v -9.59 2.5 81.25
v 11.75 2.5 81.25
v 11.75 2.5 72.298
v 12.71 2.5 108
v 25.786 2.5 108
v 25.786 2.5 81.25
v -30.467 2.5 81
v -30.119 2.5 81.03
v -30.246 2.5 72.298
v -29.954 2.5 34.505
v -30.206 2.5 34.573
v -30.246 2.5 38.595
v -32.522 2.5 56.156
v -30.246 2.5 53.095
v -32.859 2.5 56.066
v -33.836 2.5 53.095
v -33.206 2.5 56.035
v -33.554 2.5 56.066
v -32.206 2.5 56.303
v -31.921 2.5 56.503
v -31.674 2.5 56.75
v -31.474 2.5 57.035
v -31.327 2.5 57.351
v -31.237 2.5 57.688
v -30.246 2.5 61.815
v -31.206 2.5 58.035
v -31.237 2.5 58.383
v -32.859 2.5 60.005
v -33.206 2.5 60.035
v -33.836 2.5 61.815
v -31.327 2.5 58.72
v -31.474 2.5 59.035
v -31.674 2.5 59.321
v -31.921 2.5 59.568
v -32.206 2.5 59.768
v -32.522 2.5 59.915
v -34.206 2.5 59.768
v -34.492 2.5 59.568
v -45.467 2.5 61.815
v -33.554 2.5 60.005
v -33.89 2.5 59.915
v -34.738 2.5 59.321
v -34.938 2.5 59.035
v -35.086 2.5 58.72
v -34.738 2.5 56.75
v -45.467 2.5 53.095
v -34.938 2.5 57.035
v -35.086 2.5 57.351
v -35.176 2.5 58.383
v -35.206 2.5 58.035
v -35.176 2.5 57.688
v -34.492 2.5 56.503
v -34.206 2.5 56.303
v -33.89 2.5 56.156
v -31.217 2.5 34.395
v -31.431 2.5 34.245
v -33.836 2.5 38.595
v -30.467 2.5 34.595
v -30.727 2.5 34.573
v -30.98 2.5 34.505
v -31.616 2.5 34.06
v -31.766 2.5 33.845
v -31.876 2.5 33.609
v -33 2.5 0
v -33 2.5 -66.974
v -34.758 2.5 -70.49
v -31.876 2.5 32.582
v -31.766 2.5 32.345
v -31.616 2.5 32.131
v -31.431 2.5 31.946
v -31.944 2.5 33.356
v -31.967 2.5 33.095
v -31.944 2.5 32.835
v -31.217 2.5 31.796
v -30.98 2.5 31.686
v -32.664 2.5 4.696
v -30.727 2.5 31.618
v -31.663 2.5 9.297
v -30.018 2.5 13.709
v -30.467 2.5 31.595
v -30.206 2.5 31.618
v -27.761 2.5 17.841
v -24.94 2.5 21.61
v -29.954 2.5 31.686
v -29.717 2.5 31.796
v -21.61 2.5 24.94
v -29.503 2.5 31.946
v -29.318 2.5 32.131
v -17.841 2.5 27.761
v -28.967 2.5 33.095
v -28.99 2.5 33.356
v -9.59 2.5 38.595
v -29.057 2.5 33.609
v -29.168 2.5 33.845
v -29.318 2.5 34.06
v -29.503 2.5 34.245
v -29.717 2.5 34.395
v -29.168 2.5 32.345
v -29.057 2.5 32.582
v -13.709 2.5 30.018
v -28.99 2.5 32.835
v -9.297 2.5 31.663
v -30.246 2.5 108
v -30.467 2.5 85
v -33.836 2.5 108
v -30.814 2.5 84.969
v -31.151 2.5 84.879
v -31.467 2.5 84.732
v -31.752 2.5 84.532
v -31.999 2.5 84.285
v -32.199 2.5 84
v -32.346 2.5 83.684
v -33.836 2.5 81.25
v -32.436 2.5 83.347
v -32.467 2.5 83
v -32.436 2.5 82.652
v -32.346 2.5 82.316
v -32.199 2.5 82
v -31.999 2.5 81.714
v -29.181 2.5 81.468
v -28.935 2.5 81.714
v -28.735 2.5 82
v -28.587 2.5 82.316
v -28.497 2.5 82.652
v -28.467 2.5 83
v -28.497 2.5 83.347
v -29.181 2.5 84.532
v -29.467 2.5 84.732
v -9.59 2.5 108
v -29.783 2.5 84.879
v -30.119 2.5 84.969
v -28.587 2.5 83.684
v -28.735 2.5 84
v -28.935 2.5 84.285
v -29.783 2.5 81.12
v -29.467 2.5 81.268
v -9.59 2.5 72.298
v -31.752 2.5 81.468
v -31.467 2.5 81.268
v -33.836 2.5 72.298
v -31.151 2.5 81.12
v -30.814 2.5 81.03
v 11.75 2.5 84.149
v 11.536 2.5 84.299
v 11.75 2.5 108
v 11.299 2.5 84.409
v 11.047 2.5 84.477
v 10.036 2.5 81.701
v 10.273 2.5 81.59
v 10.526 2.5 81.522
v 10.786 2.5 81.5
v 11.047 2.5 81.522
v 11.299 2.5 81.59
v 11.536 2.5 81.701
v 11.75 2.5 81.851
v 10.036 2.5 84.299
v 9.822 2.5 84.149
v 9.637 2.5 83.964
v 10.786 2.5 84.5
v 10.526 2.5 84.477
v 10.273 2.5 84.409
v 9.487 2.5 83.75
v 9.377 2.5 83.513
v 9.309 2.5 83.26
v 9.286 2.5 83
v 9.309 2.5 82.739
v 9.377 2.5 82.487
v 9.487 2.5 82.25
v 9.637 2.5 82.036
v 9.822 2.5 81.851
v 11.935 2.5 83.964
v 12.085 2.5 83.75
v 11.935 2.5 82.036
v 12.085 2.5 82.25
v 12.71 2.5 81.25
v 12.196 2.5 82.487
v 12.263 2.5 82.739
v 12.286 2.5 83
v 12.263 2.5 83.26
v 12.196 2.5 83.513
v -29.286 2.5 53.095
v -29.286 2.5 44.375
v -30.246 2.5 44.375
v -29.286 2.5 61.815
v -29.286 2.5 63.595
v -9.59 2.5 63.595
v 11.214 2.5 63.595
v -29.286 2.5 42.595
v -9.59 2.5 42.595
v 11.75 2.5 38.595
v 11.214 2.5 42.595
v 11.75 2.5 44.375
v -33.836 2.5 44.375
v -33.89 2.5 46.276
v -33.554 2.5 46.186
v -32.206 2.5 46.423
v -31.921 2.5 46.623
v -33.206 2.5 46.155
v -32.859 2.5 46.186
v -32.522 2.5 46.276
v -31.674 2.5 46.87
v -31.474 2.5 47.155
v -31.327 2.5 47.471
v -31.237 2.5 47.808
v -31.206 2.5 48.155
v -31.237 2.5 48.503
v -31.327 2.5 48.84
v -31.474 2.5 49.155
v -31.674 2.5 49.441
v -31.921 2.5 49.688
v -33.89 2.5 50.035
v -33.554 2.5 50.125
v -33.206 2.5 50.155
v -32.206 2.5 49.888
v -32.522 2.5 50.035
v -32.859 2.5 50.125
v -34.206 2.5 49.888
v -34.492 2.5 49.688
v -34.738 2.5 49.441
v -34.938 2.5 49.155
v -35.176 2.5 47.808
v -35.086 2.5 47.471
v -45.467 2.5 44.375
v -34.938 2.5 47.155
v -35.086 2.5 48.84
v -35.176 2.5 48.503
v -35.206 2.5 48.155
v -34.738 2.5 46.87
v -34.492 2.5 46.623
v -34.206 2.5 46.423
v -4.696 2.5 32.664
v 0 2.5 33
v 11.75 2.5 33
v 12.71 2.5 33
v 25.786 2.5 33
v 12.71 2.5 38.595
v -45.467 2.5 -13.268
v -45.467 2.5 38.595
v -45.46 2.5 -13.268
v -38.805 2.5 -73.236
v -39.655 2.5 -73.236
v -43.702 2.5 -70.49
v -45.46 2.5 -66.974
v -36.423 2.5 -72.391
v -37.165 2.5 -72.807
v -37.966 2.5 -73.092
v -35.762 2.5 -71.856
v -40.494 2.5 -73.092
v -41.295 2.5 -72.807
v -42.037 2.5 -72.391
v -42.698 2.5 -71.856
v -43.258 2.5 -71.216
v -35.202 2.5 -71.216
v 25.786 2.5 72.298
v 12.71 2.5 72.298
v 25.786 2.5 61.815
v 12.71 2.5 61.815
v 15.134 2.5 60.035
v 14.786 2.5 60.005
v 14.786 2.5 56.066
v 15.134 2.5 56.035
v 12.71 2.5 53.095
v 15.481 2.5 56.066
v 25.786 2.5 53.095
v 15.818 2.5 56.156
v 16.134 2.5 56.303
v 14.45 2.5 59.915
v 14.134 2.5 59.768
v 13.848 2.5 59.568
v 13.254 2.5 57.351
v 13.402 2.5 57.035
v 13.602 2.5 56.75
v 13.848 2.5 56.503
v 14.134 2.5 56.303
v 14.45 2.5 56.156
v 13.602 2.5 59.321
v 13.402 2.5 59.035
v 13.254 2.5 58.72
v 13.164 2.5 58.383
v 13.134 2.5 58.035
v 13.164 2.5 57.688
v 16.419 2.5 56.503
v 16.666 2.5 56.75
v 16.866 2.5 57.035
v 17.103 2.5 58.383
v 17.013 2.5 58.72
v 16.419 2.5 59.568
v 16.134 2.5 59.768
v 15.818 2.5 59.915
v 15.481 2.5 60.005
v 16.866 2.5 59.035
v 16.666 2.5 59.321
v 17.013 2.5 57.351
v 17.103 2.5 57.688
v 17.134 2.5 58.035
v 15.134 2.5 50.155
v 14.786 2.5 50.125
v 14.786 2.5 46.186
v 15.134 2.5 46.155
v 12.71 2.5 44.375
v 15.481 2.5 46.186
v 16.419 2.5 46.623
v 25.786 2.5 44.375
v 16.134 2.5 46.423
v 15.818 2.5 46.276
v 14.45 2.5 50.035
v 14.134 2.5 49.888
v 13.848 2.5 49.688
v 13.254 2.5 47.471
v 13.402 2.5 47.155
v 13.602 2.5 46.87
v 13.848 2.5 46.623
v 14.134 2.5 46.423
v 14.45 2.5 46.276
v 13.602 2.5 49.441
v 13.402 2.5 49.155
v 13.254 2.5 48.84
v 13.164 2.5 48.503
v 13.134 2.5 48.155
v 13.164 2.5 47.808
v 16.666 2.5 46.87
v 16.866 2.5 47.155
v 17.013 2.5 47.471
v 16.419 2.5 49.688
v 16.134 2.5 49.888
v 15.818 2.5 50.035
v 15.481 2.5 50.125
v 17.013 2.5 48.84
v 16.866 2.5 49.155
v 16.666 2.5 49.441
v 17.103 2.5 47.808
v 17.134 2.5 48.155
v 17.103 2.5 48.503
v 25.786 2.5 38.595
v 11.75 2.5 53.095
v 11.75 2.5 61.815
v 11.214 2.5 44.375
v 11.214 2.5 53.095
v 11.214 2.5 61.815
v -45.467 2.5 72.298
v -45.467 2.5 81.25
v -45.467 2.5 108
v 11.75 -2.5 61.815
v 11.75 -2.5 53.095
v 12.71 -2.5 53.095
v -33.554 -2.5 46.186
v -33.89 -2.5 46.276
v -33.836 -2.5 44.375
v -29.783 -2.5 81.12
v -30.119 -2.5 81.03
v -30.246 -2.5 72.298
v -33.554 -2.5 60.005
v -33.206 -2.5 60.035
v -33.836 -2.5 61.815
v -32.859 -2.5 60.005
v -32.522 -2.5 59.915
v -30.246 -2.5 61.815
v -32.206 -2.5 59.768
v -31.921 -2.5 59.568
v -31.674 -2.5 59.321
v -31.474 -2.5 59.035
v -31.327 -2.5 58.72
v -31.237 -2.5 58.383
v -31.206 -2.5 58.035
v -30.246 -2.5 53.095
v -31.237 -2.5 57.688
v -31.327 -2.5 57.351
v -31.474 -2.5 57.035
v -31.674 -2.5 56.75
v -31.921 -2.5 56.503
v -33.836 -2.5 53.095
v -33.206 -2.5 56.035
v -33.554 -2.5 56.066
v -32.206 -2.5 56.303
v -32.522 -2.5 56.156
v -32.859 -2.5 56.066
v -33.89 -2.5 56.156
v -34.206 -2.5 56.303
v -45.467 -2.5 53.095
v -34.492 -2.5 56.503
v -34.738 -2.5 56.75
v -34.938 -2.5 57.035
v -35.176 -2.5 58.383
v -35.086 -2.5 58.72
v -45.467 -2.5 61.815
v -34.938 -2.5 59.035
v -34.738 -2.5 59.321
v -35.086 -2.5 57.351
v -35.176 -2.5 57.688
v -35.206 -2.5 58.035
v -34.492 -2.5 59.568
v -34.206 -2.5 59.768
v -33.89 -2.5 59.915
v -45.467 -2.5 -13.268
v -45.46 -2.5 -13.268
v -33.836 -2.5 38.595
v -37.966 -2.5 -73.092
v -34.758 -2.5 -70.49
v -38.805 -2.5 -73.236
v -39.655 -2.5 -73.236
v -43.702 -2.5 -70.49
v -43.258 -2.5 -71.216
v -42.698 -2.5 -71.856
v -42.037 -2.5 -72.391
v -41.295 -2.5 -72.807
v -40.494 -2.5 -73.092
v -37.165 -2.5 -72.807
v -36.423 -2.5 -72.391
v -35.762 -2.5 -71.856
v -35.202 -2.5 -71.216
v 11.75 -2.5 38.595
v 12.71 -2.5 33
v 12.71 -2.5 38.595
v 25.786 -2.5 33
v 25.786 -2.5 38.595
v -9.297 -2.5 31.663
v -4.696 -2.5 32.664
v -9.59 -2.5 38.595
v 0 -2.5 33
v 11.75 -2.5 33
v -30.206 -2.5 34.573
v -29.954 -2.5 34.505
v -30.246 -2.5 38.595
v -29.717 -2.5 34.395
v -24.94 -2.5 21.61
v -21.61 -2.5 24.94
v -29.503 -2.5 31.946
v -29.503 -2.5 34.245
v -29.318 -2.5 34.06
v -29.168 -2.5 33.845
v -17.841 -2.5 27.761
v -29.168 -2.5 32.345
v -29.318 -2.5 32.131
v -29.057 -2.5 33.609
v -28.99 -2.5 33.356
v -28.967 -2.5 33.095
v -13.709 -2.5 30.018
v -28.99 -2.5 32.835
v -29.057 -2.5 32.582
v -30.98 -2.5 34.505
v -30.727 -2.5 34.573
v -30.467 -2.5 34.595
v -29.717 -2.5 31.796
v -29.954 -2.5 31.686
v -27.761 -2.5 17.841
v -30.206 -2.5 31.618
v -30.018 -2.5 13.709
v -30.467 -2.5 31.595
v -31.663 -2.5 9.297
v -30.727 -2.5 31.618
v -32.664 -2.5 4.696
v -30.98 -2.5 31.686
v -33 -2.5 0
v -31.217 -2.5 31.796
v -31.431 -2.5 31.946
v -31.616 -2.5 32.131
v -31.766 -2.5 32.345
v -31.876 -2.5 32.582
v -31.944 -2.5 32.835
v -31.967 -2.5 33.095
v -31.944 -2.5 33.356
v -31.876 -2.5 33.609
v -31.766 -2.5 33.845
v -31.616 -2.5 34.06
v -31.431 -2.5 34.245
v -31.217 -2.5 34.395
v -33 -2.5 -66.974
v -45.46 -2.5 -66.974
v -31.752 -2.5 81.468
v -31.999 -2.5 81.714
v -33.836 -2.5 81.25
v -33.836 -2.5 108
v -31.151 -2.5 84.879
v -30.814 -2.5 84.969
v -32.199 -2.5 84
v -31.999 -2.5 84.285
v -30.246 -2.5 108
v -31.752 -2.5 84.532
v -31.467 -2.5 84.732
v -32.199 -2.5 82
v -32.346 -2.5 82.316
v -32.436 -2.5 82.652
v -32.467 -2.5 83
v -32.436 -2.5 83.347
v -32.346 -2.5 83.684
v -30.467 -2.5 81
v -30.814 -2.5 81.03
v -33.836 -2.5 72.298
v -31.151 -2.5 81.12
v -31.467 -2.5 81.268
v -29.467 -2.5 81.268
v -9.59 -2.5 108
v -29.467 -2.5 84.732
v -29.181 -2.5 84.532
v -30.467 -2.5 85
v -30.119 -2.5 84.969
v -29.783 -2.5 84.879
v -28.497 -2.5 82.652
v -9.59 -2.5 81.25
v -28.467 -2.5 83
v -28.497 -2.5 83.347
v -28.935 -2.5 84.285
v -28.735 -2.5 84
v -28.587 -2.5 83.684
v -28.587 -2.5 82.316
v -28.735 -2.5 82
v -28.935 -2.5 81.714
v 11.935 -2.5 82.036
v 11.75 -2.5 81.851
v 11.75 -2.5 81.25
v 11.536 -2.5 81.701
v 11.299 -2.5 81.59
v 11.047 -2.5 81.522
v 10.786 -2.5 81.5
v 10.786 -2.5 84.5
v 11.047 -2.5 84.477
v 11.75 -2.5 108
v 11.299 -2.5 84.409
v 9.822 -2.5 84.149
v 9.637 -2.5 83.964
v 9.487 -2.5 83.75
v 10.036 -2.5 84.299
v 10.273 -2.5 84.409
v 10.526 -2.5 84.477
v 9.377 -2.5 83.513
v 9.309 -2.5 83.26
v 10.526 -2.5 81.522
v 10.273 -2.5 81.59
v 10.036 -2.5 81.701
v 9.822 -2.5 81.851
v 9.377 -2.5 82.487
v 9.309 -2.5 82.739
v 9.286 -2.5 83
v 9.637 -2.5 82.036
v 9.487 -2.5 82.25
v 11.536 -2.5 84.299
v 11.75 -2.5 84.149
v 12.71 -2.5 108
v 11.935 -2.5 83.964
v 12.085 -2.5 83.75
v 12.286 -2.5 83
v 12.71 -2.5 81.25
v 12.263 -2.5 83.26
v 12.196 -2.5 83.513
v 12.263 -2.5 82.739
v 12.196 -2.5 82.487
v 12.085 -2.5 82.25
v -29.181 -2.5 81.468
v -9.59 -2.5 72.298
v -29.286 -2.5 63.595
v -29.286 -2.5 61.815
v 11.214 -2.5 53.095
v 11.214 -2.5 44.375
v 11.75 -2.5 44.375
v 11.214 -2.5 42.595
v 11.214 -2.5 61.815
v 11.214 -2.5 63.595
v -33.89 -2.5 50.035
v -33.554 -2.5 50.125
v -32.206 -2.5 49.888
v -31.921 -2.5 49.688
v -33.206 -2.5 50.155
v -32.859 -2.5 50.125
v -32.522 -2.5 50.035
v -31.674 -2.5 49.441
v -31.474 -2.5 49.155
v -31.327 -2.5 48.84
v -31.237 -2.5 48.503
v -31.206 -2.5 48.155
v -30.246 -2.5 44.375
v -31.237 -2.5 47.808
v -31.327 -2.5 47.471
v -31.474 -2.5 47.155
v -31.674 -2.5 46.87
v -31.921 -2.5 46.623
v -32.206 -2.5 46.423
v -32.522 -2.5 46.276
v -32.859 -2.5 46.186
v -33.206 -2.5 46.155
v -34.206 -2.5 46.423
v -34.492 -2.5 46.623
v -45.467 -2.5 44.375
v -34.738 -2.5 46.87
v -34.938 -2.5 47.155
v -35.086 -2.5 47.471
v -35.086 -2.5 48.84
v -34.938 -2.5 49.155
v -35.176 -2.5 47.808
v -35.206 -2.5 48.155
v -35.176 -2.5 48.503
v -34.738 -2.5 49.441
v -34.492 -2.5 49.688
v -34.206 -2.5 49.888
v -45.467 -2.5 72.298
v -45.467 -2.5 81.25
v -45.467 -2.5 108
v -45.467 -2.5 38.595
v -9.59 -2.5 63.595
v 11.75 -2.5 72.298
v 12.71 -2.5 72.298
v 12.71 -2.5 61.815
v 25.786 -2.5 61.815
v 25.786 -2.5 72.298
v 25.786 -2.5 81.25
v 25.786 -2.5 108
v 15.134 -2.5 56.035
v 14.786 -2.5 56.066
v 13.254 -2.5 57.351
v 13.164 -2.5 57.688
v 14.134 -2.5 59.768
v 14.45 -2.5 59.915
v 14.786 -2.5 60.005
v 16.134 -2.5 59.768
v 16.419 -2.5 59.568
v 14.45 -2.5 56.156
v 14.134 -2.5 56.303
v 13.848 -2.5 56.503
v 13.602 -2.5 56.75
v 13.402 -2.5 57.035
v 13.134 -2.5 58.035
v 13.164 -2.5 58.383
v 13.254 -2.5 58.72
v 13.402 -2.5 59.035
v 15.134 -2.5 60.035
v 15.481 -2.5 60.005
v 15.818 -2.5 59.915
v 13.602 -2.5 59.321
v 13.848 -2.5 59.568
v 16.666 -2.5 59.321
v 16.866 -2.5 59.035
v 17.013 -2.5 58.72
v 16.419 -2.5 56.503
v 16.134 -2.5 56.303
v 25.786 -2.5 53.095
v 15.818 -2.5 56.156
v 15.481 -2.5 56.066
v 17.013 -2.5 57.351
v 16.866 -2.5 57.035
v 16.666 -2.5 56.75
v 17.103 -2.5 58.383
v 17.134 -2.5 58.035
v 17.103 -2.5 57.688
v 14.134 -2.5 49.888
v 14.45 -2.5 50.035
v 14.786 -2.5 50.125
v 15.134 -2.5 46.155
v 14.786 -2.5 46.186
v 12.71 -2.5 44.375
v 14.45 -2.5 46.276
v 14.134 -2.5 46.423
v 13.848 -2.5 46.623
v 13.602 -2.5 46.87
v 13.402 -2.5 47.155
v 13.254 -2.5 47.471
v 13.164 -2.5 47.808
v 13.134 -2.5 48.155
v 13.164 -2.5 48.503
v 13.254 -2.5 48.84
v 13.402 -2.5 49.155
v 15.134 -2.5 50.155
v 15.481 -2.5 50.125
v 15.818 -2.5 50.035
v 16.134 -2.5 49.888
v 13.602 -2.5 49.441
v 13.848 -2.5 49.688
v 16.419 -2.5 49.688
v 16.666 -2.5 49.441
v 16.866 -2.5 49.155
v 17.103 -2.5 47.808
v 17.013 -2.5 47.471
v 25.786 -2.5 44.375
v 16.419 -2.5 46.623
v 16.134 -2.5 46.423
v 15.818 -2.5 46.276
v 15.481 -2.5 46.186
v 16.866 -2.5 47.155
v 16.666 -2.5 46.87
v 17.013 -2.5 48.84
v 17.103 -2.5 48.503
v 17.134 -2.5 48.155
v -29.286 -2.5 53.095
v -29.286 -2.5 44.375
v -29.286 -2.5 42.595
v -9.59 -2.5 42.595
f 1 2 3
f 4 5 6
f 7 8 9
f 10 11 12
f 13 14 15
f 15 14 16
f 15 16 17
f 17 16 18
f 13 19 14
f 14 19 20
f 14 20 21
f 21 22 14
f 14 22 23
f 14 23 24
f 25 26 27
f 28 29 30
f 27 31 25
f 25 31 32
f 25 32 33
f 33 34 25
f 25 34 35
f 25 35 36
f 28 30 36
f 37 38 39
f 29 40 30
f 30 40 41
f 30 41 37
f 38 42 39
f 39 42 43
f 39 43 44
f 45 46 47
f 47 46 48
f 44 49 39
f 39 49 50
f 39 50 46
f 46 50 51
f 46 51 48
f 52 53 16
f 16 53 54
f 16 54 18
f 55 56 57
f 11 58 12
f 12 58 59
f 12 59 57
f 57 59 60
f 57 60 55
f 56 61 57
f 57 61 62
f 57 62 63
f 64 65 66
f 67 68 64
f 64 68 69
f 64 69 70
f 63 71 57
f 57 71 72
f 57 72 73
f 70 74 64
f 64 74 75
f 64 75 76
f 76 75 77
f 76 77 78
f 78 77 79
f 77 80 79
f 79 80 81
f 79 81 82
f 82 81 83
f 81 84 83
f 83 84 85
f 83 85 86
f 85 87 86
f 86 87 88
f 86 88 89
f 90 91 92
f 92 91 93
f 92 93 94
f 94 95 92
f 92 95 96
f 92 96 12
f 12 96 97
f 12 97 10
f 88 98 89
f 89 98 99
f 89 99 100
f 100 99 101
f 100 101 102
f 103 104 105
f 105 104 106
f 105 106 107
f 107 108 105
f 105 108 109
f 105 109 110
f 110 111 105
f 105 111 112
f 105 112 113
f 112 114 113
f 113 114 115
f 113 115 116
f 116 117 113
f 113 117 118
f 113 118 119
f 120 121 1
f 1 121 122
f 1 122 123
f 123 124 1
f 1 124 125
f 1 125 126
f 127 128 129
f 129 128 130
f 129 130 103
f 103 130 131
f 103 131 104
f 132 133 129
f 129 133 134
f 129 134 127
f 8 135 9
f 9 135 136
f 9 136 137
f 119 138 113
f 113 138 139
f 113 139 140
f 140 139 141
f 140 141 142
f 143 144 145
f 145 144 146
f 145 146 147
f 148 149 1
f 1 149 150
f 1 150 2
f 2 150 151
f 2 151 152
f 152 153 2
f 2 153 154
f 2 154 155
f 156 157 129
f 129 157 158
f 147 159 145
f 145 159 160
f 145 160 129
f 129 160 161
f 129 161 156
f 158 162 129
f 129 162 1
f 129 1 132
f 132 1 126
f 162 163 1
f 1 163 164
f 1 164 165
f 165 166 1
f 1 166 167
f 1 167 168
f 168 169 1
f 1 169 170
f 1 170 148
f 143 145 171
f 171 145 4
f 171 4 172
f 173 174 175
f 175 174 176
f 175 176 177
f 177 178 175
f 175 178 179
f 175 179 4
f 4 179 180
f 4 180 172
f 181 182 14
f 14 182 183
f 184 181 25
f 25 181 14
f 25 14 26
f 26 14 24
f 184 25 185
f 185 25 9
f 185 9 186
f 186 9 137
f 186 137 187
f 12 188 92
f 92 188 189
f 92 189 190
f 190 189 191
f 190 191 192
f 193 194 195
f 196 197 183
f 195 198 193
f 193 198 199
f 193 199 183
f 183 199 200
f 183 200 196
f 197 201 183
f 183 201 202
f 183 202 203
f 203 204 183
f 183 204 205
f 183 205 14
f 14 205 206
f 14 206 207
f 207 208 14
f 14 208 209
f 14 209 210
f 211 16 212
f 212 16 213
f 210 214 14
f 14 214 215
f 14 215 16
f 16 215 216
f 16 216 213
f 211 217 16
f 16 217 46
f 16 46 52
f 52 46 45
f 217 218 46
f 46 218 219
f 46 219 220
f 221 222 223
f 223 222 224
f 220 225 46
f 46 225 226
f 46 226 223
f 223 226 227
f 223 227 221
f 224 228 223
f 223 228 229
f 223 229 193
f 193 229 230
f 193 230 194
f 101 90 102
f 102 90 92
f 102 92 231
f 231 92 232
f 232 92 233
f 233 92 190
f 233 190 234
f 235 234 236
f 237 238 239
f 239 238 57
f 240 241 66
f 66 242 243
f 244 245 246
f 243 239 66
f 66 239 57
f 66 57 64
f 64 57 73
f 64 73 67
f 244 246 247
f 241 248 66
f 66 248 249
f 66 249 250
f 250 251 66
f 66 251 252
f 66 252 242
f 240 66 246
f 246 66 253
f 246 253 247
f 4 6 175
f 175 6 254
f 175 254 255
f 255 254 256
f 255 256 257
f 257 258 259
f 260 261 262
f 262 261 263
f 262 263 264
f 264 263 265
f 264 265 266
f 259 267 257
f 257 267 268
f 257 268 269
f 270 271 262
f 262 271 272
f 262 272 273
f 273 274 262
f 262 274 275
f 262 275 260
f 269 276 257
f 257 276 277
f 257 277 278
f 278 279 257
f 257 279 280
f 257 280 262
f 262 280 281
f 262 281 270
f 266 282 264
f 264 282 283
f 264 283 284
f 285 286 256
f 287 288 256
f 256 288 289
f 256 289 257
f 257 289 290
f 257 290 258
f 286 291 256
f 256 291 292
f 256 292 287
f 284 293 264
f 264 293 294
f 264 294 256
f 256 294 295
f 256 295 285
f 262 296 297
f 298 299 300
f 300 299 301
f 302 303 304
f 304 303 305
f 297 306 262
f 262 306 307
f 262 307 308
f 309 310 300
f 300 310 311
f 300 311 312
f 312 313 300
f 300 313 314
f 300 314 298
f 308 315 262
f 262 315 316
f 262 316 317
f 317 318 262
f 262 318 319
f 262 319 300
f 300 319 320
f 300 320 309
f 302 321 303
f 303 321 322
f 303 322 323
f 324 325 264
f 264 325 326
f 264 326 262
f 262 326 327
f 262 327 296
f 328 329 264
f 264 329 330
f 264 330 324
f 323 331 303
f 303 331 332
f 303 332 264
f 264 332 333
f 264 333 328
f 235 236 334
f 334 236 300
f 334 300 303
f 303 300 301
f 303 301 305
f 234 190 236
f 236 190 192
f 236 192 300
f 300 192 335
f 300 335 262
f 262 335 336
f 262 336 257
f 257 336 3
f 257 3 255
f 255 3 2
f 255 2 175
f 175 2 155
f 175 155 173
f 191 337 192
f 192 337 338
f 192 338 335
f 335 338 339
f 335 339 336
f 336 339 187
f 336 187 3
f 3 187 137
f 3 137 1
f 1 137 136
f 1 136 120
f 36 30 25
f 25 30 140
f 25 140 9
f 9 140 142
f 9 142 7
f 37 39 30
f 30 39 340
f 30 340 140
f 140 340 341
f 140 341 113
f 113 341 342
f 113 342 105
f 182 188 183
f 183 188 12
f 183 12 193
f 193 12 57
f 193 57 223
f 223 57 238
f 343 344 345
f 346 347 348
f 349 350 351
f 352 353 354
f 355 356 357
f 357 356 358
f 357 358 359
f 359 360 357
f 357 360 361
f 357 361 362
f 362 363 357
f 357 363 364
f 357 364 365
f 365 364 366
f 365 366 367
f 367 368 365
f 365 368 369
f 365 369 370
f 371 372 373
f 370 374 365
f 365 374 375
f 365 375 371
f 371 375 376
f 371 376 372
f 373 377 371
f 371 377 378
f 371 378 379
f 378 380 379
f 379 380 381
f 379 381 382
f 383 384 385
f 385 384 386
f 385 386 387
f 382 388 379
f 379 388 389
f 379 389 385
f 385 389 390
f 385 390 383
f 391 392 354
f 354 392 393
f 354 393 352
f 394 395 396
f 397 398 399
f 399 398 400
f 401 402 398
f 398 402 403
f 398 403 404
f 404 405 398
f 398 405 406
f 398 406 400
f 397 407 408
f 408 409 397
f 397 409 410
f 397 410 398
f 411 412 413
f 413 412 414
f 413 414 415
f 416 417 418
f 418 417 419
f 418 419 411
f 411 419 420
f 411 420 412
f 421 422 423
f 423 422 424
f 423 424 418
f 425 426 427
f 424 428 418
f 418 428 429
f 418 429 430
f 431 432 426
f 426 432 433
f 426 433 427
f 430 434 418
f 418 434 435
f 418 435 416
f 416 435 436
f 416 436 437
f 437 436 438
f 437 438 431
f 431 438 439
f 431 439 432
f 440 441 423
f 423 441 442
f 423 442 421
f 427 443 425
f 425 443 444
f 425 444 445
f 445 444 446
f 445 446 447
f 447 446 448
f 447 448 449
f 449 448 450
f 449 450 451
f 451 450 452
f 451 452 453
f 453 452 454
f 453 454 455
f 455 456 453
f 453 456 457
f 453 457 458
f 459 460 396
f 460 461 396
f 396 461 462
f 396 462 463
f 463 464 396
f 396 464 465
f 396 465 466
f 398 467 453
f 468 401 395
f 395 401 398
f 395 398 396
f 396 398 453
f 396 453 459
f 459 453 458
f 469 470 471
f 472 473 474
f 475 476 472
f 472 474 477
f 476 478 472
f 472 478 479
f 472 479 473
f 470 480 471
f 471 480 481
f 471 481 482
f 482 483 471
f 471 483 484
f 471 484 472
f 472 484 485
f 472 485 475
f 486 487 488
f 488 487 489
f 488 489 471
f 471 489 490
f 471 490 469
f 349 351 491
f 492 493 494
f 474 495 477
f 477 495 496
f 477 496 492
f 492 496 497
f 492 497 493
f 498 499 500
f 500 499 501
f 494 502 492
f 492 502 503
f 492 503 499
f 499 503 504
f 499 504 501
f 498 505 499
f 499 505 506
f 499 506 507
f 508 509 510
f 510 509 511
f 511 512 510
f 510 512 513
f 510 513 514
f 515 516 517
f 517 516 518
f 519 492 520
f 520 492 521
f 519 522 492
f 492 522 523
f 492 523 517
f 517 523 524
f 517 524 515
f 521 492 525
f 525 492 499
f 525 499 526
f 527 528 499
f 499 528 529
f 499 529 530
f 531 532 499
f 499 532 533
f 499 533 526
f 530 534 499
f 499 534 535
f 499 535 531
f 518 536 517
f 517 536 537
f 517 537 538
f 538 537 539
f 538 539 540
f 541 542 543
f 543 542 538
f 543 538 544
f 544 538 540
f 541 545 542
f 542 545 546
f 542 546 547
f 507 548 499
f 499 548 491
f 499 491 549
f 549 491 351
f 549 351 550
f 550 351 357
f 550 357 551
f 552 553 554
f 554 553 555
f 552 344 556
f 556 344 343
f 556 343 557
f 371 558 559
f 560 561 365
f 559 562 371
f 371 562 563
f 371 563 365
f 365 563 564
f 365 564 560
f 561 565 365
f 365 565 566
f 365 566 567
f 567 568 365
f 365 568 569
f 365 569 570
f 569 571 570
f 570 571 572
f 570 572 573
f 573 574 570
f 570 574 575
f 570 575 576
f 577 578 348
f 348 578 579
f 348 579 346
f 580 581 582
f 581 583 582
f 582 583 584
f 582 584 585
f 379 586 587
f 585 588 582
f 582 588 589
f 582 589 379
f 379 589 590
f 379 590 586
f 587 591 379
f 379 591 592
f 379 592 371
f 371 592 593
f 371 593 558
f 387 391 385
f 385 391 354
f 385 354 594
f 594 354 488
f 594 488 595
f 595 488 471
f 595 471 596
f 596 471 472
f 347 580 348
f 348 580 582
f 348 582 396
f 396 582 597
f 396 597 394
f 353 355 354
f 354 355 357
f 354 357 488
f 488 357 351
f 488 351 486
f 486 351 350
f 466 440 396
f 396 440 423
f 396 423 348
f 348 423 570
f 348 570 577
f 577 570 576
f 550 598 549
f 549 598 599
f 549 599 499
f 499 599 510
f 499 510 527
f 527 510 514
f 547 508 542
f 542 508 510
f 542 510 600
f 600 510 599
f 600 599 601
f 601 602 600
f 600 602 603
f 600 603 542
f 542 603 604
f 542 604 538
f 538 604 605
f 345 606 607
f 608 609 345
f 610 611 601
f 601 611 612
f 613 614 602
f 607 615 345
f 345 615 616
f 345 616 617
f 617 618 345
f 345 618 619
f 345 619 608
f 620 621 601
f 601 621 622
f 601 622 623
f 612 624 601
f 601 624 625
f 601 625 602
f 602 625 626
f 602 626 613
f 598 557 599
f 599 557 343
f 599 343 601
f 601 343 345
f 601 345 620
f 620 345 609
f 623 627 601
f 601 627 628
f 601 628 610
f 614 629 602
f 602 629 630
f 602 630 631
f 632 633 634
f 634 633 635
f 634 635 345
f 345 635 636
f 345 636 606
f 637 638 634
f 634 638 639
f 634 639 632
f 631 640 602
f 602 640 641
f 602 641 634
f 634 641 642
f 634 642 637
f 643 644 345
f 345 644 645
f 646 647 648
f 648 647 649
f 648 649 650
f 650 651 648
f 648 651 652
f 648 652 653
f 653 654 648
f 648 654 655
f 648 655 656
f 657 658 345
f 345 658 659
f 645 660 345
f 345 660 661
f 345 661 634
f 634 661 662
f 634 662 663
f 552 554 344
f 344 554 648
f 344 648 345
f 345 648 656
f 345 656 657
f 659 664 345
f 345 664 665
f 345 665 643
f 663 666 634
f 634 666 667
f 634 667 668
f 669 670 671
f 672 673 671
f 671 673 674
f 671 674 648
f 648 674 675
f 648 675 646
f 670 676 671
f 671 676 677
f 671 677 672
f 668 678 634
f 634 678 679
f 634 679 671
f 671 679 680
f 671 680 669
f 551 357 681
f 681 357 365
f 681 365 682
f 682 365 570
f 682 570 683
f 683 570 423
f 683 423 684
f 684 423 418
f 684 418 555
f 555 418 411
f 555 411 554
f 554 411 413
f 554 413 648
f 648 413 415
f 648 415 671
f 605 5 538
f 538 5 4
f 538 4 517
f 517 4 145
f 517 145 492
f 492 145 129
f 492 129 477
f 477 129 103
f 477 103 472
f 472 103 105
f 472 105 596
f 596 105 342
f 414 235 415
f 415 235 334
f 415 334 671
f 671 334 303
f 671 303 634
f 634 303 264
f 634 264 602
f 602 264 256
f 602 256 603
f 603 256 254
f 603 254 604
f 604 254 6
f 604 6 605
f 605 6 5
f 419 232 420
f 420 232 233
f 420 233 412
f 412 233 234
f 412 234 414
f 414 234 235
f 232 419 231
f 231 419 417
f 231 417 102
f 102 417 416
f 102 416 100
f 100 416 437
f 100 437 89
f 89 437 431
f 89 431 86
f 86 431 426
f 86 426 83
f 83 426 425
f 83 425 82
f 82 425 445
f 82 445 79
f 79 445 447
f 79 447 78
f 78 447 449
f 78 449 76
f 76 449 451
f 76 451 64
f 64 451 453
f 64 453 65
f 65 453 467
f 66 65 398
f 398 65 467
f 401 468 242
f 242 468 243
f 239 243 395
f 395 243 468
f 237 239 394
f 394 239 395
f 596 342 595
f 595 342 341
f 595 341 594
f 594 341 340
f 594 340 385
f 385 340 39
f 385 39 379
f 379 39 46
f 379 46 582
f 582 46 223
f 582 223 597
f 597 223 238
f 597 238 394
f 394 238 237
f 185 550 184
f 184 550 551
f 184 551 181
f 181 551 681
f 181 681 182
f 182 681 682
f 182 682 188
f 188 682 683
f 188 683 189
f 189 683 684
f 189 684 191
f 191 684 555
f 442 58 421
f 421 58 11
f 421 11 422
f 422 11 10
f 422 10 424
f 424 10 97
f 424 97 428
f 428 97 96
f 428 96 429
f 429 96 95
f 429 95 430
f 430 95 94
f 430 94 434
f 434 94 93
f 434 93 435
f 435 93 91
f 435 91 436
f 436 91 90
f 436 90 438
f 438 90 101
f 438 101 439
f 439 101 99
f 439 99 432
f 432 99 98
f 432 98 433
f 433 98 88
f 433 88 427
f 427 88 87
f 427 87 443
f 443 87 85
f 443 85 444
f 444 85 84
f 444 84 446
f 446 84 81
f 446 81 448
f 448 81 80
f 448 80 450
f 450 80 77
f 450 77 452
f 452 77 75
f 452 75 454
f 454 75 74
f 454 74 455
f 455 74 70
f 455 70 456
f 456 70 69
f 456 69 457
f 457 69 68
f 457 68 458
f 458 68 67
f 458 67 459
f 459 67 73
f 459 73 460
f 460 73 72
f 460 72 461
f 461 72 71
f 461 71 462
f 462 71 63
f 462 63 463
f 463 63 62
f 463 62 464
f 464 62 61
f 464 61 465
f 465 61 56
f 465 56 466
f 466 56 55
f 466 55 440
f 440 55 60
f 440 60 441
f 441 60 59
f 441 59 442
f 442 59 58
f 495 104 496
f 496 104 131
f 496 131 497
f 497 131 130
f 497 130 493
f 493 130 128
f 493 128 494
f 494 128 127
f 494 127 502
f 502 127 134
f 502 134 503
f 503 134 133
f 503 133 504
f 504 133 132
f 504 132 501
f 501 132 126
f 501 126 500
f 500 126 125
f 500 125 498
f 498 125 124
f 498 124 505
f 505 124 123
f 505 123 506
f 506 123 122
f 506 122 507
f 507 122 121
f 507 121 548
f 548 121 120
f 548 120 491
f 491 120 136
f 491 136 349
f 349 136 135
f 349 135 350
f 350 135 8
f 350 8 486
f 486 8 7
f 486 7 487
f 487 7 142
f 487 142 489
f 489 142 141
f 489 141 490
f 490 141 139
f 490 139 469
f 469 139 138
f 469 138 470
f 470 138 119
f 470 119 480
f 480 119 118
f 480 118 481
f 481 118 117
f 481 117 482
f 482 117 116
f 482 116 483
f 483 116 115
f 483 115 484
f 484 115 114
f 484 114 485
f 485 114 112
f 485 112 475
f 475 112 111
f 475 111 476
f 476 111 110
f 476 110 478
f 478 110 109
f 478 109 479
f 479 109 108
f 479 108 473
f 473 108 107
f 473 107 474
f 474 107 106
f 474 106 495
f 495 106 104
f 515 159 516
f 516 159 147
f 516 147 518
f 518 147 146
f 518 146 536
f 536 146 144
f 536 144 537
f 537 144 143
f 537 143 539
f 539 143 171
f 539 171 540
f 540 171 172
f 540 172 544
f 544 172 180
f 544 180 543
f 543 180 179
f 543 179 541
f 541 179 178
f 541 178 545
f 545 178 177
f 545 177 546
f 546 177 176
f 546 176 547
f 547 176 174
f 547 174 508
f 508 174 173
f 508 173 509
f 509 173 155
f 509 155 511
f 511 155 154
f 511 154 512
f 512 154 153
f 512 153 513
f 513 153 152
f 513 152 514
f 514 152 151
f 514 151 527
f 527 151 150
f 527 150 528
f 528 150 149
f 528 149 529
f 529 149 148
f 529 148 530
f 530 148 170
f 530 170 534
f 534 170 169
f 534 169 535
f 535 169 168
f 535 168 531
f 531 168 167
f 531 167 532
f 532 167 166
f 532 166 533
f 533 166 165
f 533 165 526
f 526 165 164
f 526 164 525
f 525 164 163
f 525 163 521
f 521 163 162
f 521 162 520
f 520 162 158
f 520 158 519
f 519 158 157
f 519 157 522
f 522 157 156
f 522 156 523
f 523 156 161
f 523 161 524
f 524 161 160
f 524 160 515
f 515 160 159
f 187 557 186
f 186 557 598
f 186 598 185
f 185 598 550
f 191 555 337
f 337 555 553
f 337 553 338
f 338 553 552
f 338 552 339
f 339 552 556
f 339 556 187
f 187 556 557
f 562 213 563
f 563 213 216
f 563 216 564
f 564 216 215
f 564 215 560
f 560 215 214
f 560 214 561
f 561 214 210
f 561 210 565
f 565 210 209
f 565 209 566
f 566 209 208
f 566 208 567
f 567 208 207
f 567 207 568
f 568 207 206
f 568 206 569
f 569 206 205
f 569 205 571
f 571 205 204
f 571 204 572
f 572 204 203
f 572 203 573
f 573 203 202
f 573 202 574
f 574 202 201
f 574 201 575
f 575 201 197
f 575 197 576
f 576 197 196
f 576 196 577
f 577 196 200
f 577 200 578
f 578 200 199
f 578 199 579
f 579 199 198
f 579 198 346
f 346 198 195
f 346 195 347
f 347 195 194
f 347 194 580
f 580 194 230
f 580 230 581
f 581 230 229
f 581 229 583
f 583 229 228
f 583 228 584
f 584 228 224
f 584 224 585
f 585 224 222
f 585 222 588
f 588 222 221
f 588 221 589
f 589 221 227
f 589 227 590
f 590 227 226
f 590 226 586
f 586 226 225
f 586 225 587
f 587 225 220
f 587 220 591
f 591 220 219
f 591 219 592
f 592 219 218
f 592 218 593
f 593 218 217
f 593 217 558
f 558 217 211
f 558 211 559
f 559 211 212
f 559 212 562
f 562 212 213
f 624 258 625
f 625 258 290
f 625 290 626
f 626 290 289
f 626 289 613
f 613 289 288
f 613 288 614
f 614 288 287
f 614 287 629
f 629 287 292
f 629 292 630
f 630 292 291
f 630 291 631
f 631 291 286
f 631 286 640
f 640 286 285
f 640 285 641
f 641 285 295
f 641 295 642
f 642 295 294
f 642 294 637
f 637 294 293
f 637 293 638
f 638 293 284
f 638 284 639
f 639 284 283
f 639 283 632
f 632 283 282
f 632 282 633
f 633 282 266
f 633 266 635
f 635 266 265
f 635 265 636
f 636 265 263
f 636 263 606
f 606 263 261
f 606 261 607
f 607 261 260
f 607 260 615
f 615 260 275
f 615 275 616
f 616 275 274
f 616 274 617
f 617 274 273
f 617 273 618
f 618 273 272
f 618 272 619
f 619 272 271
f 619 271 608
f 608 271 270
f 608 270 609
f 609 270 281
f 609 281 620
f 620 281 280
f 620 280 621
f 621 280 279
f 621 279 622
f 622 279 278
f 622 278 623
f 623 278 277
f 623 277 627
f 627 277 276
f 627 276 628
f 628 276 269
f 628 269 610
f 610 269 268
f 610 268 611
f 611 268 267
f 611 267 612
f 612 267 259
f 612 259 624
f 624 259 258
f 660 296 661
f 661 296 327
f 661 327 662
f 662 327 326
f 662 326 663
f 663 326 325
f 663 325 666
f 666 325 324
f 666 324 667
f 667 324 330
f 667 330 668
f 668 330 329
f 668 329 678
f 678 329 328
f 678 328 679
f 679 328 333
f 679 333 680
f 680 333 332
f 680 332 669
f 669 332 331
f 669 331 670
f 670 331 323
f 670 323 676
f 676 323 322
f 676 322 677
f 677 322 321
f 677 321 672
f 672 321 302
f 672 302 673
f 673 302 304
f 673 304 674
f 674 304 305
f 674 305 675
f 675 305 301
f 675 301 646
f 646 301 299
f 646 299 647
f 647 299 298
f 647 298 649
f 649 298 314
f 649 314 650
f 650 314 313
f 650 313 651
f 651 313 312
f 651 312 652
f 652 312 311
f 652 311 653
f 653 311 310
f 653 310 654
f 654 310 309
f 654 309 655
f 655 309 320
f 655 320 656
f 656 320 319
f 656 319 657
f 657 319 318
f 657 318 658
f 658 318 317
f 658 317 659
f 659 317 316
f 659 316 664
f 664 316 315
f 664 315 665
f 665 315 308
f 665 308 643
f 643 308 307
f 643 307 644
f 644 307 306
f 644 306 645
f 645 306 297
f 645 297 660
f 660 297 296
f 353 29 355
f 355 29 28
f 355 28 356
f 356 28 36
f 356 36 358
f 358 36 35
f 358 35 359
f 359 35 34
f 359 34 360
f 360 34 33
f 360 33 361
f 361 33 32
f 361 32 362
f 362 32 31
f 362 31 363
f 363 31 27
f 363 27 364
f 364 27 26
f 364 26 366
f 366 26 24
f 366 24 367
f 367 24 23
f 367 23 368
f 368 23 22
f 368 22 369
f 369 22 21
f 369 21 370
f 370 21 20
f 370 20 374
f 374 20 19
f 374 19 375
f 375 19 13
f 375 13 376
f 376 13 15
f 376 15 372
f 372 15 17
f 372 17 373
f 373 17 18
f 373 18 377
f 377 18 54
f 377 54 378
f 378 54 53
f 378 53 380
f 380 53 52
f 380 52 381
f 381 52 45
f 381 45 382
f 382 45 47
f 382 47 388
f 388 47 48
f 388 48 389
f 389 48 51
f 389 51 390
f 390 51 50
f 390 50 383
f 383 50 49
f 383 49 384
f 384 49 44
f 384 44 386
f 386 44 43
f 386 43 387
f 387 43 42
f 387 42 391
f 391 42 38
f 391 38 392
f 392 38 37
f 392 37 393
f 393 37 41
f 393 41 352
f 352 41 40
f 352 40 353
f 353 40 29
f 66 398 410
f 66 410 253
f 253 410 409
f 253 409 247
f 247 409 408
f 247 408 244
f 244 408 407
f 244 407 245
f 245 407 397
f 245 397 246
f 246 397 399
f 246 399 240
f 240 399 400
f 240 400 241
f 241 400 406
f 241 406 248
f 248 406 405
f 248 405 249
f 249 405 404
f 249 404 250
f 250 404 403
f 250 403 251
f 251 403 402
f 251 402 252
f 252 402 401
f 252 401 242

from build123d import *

# Parameters (mm, degrees)
BOSS_EXTRUDE1_DEPTH = 2.5
SKETCH2_W           = 39
SKETCH2_H           = 19
CUT_EXTRUDE2_DEPTH  = 118.286651401
SKETCH6_R           = 1.5
SKETCH6_R_2         = 2
CUT_EXTRUDE11_DEPTH = 118.286651401
SKETCH8_W           = 39.164697568
SKETCH8_H           = 2
CUT_EXTRUDE12_DEPTH = 10
SKETCH9_W           = 40.5
SKETCH9_H           = 21
CUT_EXTRUDE14_DEPTH = 10
SKETCH10_R          = 2
CUT_EXTRUDE16_DEPTH = 10
SKETCH14_W          = 61.515702129
SKETCH14_H          = 51.963385976
CUT_EXTRUDE19_DEPTH = 10
FILLET4_R           = 5


with BuildPart() as part:
    # Sketch1 → Boss-Extrude1 (new, symmetric)
    with BuildSketch(Plane(origin=(0, 0, 0), x_dir=(1, 0, 0), z_dir=(0, 1, 0))):
        with BuildLine():
            Line((-45.466733516, 13.267794591), (-45.466733516, -107.999697871))
            Line((-45.466733516, -107.999697871), (25.786244138, -107.999697871))
            Line((25.786244138, -107.999697871), (25.786244138, -33))
            Line((25.786244138, -33), (0, -33))
            ThreePointArc((0, -33), (-23.334523779, -23.334523779), (-33, 0))
            Line((-33, 0), (-33, 13.267794591))
            Line((-33, 13.267794591), (-30.215321059, 13.267794591))
            ThreePointArc((-30.215321059, 13.267794591), (-18.043874009, 27.630030958), (0, 33))
            Line((0, 33), (0, 48))
            ThreePointArc((0, 48), (-17.760506671, 44.593322401), (-33, 34.856850116))
            Line((-33, 34.856850116), (-33, 66.974298245))
            Line((-33, 66.974298245), (-39.23, 79.434298245))
            Line((-39.23, 79.434298245), (-45.46, 66.974298245))
            Line((-45.46, 66.974298245), (-45.46, 13.267794591))
            Line((-45.46, 13.267794591), (-45.466733516, 13.267794591))
        make_face()
        with BuildLine():
            ThreePointArc((0, -48), (-3.55792227, -47.867955765), (-7.096269411, -47.472549547))
            Line((-7.096269411, -47.472549547), (0, -47.472549547))
            Line((0, -47.472549547), (0, -48))
        make_face(mode=Mode.SUBTRACT)
    extrude(amount=BOSS_EXTRUDE1_DEPTH, both=True)

    # Sketch2 → Cut-Extrude2 (cut, through all)
    with BuildSketch(Plane(origin=(0, 2.5, 0), x_dir=(1, 0, 0), z_dir=(0, 1, 0))):
        with Locations((-9.786245396, -52.095481266)):
            Rectangle(SKETCH2_W, SKETCH2_H)
    extrude(amount=-CUT_EXTRUDE2_DEPTH, mode=Mode.SUBTRACT)

    # Sketch6 → Cut-Extrude11 (cut, through all)
    with BuildSketch(Plane(origin=(0, 2.5, 0), x_dir=(1, 0, 0), z_dir=(0, 1, 0))):
        with Locations(Location((10.786244138, -82.999697871, 0), (0, 0, 270))):
            Circle(SKETCH6_R)
        with Locations(Location((-30.466733516, -82.999697871, 0), (0, 0, 270))):
            Circle(SKETCH6_R_2)
        with Locations(Location((-30.466733516, -33.095481266, 0), (0, 0, 270))):
            Circle(SKETCH6_R)
    extrude(amount=-CUT_EXTRUDE11_DEPTH, mode=Mode.SUBTRACT)

    # Sketch8 → Cut-Extrude12 (cut)
    with BuildSketch(Plane(origin=(0, 2.5, 0), x_dir=(1, 0, 0), z_dir=(0, 1, 0))):
        with Locations((-9.703896612, -62.595481266)):
            Rectangle(SKETCH8_W, SKETCH8_H)
    extrude(amount=-CUT_EXTRUDE12_DEPTH, mode=Mode.SUBTRACT)

    # Sketch9 → Cut-Extrude14 (cut)
    with BuildSketch(Plane(origin=(0, 2.5, 0), x_dir=(1, 0, 0), z_dir=(0, 1, 0))):
        with Locations((-9.036245396, -53.095481266)):
            Rectangle(SKETCH9_W, SKETCH9_H)
    extrude(amount=-CUT_EXTRUDE14_DEPTH, mode=Mode.SUBTRACT)

    # Sketch10 → Cut-Extrude16 (cut)
    with BuildSketch(Plane(origin=(0, 2.5, 0), x_dir=(1, 0, 0), z_dir=(0, 1, 0))):
        with Locations(Location((-33.206245396, -48.155481266, 0), (0, 0, 270))):
            Circle(SKETCH10_R)
        with Locations(Location((-33.206245396, -58.035481266, 0), (0, 0, 270))):
            Circle(SKETCH10_R)
        with Locations(Location((15.133754604, -58.035481266, 0), (0, 0, 270))):
            Circle(SKETCH10_R)
        with Locations(Location((15.133754604, -48.155481266, 0), (0, 0, 270))):
            Circle(SKETCH10_R)
    extrude(amount=-CUT_EXTRUDE16_DEPTH, mode=Mode.SUBTRACT)

    # Sketch14 → Cut-Extrude19 (cut)
    with BuildSketch(Plane(origin=(0, 2.5, 0), x_dir=(1, 0, 0), z_dir=(0, 1, 0))):
        with Locations((-2.242148935, 25.981692988)):
            Rectangle(SKETCH14_W, SKETCH14_H)
    extrude(amount=-CUT_EXTRUDE19_DEPTH, mode=Mode.SUBTRACT)

    # Fillet4
    fillet4_edges = [part.edges().sort_by_distance(p)[0] for p in [
        (-39.23, 0, -79.434298245),
    ]]
    fillet(fillet4_edges, radius=FILLET4_R)


solid = part.part
